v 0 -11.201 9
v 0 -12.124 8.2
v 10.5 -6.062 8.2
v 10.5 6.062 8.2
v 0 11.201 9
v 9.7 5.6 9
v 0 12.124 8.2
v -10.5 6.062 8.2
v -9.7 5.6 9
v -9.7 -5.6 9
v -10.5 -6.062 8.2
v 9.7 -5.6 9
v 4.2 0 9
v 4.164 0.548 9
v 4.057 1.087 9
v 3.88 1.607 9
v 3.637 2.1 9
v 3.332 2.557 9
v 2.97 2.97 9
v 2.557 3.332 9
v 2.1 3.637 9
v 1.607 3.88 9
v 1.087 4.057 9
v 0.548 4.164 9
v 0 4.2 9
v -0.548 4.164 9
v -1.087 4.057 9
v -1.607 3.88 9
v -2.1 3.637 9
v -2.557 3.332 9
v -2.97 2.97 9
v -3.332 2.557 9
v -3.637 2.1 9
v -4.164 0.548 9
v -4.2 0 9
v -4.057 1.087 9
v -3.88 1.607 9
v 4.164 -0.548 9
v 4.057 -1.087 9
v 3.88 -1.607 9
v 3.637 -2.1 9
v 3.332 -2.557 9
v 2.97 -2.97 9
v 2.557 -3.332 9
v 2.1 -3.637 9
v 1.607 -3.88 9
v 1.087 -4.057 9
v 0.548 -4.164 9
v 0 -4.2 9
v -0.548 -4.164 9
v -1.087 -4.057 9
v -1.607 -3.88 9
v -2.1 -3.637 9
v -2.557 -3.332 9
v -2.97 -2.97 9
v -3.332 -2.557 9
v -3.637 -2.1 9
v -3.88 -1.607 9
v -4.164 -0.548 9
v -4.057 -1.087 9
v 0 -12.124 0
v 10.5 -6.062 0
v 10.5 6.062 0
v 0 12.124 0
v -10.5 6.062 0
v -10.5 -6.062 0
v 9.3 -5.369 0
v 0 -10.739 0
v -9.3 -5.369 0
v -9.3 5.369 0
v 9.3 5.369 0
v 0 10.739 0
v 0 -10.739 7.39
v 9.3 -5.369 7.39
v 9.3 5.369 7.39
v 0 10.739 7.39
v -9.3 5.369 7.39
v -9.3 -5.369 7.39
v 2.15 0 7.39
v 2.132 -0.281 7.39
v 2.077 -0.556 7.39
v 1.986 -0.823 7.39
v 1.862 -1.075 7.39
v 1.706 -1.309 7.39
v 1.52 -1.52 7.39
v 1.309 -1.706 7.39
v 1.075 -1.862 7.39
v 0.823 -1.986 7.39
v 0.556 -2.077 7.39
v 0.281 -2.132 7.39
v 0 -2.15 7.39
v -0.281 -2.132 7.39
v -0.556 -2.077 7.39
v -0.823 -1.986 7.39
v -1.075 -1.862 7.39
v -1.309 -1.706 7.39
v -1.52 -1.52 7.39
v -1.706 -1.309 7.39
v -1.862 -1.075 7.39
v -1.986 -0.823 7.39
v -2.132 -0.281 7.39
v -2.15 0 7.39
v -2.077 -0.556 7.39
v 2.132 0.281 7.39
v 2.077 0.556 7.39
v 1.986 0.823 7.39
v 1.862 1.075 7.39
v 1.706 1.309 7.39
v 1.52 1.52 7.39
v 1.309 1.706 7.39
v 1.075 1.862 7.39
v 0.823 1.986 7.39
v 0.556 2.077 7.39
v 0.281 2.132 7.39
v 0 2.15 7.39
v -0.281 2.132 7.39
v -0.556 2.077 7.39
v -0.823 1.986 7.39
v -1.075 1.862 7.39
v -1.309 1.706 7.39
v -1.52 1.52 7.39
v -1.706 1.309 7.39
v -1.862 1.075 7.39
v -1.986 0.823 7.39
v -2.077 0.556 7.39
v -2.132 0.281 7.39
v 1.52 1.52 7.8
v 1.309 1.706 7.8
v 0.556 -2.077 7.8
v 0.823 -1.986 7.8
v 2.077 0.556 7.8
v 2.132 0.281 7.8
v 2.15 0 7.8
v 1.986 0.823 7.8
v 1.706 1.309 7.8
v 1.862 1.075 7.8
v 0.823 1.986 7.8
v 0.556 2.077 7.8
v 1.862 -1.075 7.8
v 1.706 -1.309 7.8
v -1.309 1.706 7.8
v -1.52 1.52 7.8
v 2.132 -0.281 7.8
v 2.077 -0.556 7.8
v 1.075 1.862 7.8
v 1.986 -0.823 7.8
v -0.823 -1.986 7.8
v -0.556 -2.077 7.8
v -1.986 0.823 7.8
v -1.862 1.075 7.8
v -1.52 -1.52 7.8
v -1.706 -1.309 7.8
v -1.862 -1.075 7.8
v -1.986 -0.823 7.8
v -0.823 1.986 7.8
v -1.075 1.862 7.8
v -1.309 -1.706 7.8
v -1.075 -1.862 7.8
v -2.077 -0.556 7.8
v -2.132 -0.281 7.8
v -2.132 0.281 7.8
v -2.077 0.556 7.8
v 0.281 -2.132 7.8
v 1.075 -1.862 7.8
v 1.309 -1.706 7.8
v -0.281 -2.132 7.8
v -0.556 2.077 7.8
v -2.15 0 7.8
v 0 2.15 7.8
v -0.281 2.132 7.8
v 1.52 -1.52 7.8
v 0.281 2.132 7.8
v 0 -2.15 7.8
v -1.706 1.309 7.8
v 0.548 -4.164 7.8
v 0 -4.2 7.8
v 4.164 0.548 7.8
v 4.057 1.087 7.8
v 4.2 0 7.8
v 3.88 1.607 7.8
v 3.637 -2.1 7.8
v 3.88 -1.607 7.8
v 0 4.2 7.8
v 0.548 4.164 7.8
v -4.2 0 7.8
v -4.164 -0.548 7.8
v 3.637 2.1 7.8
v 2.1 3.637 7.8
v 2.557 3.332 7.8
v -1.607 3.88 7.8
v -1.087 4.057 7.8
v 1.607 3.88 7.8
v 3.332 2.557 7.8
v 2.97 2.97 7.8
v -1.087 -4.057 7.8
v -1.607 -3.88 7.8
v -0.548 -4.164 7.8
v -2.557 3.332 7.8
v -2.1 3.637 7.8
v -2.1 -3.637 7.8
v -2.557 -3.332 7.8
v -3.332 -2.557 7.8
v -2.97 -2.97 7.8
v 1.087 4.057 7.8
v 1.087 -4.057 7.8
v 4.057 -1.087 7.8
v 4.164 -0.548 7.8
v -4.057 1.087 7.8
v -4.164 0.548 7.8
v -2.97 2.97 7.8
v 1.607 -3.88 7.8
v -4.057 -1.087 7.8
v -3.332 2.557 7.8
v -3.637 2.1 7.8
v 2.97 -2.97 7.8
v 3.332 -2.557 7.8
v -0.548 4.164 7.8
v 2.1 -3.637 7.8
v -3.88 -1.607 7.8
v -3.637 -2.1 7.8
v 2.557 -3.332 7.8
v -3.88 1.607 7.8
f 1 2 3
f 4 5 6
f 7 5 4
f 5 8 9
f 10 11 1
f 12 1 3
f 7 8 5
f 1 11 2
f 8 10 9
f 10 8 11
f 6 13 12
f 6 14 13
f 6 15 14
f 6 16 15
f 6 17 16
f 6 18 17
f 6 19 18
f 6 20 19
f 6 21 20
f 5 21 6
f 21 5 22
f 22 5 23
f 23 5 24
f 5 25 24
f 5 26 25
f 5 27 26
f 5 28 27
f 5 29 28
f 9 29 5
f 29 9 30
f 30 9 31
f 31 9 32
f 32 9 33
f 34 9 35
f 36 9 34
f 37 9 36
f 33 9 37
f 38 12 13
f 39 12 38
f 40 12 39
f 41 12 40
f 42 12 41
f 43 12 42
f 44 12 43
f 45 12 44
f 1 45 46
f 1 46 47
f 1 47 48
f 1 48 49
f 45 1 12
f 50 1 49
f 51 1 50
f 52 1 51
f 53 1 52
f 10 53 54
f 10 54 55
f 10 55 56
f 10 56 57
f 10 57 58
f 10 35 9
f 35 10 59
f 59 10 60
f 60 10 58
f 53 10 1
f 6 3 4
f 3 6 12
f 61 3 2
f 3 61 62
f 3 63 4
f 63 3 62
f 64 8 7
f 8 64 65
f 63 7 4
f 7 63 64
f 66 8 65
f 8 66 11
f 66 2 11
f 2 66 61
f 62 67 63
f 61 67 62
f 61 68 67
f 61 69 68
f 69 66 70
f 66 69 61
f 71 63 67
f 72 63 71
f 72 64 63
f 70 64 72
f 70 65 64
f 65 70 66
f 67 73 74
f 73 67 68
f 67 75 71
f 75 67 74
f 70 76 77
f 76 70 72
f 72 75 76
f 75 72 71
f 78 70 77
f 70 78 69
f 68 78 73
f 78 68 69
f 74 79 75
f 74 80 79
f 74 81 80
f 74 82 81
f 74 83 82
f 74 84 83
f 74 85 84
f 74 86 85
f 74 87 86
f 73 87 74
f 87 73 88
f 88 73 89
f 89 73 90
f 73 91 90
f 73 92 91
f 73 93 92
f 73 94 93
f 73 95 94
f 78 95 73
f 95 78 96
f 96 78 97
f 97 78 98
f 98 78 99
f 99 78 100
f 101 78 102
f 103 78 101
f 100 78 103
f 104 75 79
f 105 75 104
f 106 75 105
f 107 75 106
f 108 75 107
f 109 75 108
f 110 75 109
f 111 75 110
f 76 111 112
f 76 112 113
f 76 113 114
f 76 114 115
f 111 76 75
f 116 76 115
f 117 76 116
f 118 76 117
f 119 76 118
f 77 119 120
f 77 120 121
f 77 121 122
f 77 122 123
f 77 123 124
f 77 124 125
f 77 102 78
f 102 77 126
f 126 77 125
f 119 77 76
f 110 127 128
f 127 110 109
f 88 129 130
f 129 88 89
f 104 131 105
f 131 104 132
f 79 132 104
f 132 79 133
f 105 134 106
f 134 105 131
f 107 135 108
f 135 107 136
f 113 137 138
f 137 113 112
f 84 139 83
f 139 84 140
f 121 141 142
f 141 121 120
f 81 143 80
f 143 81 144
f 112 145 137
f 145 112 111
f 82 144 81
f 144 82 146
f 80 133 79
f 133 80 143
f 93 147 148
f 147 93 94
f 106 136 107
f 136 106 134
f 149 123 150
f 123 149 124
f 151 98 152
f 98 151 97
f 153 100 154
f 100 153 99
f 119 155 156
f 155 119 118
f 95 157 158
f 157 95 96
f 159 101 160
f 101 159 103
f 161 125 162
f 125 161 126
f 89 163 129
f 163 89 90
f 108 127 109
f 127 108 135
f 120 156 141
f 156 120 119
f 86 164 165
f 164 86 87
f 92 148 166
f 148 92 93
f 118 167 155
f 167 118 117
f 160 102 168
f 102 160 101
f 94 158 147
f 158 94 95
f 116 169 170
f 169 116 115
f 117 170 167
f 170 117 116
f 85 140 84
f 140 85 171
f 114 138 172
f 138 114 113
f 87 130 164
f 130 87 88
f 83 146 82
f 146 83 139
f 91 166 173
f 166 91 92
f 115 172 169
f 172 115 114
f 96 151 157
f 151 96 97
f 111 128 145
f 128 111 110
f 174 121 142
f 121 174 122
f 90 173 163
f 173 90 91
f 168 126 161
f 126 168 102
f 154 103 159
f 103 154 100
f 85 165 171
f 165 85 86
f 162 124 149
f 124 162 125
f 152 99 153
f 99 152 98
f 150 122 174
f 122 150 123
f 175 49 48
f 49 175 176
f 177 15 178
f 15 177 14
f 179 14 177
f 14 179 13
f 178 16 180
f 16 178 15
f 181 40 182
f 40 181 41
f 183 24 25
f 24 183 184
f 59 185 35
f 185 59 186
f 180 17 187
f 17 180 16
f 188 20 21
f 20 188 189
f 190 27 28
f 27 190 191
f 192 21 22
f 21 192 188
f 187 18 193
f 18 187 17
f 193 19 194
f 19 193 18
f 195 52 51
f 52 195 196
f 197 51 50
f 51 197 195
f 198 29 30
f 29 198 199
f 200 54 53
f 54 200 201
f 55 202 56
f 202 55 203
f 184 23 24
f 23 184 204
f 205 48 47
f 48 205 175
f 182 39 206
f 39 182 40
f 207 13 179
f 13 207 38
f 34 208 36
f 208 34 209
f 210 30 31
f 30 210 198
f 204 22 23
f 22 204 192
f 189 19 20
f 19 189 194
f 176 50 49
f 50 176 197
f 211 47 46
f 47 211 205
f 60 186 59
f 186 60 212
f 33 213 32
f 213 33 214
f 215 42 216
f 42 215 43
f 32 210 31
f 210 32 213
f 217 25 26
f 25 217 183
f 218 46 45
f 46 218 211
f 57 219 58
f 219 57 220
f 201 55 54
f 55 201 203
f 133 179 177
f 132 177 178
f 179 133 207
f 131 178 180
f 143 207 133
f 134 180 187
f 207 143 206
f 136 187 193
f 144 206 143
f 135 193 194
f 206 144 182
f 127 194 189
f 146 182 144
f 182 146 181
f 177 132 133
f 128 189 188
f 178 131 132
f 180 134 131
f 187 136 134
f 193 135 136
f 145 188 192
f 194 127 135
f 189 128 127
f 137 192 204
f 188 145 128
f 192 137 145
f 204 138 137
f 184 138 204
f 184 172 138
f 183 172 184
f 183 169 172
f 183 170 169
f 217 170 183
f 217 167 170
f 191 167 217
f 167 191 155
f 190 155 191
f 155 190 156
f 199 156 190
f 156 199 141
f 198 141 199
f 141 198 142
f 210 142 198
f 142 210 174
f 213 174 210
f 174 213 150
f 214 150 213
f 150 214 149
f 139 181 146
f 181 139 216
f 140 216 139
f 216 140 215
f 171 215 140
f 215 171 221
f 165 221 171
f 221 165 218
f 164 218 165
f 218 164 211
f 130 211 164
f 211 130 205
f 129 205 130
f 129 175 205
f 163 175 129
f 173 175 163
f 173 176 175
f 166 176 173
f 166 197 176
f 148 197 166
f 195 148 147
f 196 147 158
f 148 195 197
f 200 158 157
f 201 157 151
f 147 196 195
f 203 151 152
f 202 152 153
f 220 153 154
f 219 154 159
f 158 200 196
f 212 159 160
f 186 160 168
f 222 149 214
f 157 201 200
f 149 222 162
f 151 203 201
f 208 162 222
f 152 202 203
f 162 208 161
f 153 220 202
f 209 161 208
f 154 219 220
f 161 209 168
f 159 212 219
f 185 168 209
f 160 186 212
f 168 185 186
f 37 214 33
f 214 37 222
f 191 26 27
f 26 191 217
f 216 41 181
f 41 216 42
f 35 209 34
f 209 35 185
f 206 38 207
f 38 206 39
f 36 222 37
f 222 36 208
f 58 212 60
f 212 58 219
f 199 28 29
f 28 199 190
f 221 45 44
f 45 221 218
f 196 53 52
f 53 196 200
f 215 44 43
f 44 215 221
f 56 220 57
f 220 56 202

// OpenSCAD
// file: common.scad
// Hexboard overlay — shared dimensions and part modules.
// All values hardcoded in mm. z = 0 is the iPad glass. Hexes are pointy-top (a vertex points along +Y),
// matching the app's key grid (app/js/geometry.js).

$fn = 48;

// ---------- grid ----------
PITCH   = 24.15;                 // key centre-to-centre
ROW     = PITCH * sqrt(3) / 2;   // 20.914 between rows

// ---------- cap (translucent PETG) ----------
CAP_FLAT   = 21.0;   // outer flat-to-flat
CAP_H      = 9.0;
CAP_WALL   = 1.2;
CAP_TOP    = 1.6;    // top thickness
CAP_HOLE   = 4.3;    // stem through-hole
CB_D       = 8.4;    // counterbore for plunger head
CB_DEPTH   = 1.2;

// ---------- plunger (conductive PLA) ----------
HEAD_D     = 8.0;
HEAD_H     = 1.2;
STEM_D     = 4.0;
STEM_L     = 14.3;   // below the head

// ---------- tip cup (conductive PLA) + conductive foam ----------
CUP_D      = 7.5;
CUP_H      = 4.5;
SOCKET_D   = 4.05;   // press fit on the stem
SOCKET_DEPTH = 2.0;
POCKET_D   = 6.2;    // holds a 6 mm conductive foam disc
POCKET_DEPTH = 2.0;
FOAM_PROTRUDE = 1.5; // foam below the cup (foam disc 6 x 3.5 mm)

// ---------- vertical stack (rest position) ----------
REST_GAP     = 2.0;                                  // foam to glass at rest
CUP_TOP_Z    = REST_GAP + FOAM_PROTRUDE + CUP_H;     // 8.0: cup stops under the spider
SPIDER_Z     = CUP_TOP_Z;                            // spider bottom = plate bottom
SPIDER_T     = 1.5;
TRAVEL_STOP  = 3.0;                                  // cap bottom to spider at rest
CAP_BOTTOM_Z = SPIDER_Z + SPIDER_T + TRAVEL_STOP;    // 12.5
CAP_TOP_Z    = CAP_BOTTOM_Z + CAP_H;                 // 21.5
PLATE_TOP_Z  = CAP_TOP_Z - 2.0;                      // 19.5: caps stand 2 mm proud
// Pressed to the stop: foam is 1 mm into the glass (compressed), which is the pressure range.

// ---------- bore + spider (part of each housing) ----------
BORE_FLAT    = 21.4;  // 0.2 mm clearance per side
SPIDER_RING_ID = 4.6; // stem slides through
SPIDER_RING_OD = 9.0; // spring seat (spring: 0.5 mm wire, 7 mm OD, ~15 mm free length)
SPOKE_W      = 1.2;

// ---------- iPad Air 4 (A2316) ----------
IPAD_W   = 247.6;
IPAD_H   = 178.5;
IPAD_T   = 6.1;
IPAD_R   = 18.0;     // corner radius (approximate: measure yours)
SCREEN_W = 227.06;   // 2360 px / 264 ppi
SCREEN_H = 157.79;   // 1640 px / 264 ppi
STRIP    = 18.0;     // uncovered control strip along the top edge of the screen
// Key grid centre relative to screen centre (y up): matches app geometry.
GRID_Y   = -(SCREEN_H + STRIP) / 2 + SCREEN_H / 2;   // -9.0

// ---------- helpers ----------
module hex(flat, h) { rotate([0, 0, 30]) cylinder(r = flat / sqrt(3), h = h, $fn = 6); }

// Key centres for the 51-key grid: 6 rows of 9 / 8 keys, row 0 nearest the player.
function key_q(r, j) = (r % 2 == 1) ? j - 3.5 : j - 4;
function key_pos(r, j) = [key_q(r, j) * PITCH, GRID_Y + (r - 2.5) * ROW];

// ---------- parts ----------
// Cap: hollow hex, open at the bottom. Print top-down (top face on the bed).
module cap() {
  difference() {
    hex(CAP_FLAT, CAP_H);
    translate([0, 0, -0.01]) hex(CAP_FLAT - 2 * CAP_WALL, CAP_H - CAP_TOP);
    translate([0, 0, -1]) cylinder(d = CAP_HOLE, h = CAP_H + 2);
    translate([0, 0, CAP_H - CB_DEPTH]) cylinder(d = CB_D, h = CB_DEPTH + 1);
    // soft top edge
    translate([0, 0, CAP_H - 0.8])
      difference() { hex(CAP_FLAT + 2, 2); hex_chamfer(); }
  }
}
module hex_chamfer() {
  rotate([0, 0, 30]) cylinder(r1 = CAP_FLAT / sqrt(3), r2 = (CAP_FLAT - 1.6) / sqrt(3), h = 0.8, $fn = 6);
}

// Plunger: head sits flush in the cap's counterbore; stem runs down through the spider.
// Print head-down.
module plunger() {
  cylinder(d = HEAD_D, h = HEAD_H);
  cylinder(d = STEM_D, h = HEAD_H + STEM_L);
}

// Tip cup: socket on top (stem), pocket underneath (foam). Print socket-up.
module tip_cup() {
  difference() {
    cylinder(d = CUP_D, h = CUP_H);
    translate([0, 0, -0.01]) cylinder(d = POCKET_D, h = POCKET_DEPTH);
    translate([0, 0, CUP_H - SOCKET_DEPTH]) cylinder(d = SOCKET_D, h = SOCKET_DEPTH + 1);
  }
}

// Spider: three spokes from the bore wall to the spring-seat ring. Positioned at z = SPIDER_Z.
module spider() {
  translate([0, 0, SPIDER_Z]) {
    difference() {
      cylinder(d = SPIDER_RING_OD, h = SPIDER_T);
      translate([0, 0, -1]) cylinder(d = SPIDER_RING_ID, h = SPIDER_T + 2);
    }
    for (a = [0, 120, 240]) rotate([0, 0, a])   // toward the bore's flat sides
      translate([SPIDER_RING_OD / 2 - 0.5, -SPOKE_W / 2, 0])
        cube([BORE_FLAT / 2 - SPIDER_RING_OD / 2 + 1.5, SPOKE_W, SPIDER_T]);
  }
}

// Bore cut-out (through the plate), used with difference().
module bore() { translate([0, 0, SPIDER_Z - 1]) hex(BORE_FLAT, PLATE_TOP_Z - SPIDER_Z + 2); }

// Whole key assembly at rest, for previews.
module key_assembly() {
  color([0.6, 0.9, 0.8, 0.6]) translate([0, 0, CAP_BOTTOM_Z]) cap();
  color("dimgray") translate([0, 0, CAP_TOP_Z]) mirror([0, 0, 1]) plunger();
  color("dimgray") translate([0, 0, CUP_TOP_Z - CUP_H]) tip_cup();
  color("black") translate([0, 0, REST_GAP]) cylinder(d = 6, h = FOAM_PROTRUDE + POCKET_DEPTH);
}
// main file
// Key cap — translucent PETG. Print top-down (flip in the slicer so the top face is on the bed),
// no supports, 0.2 mm layers. 51 needed for the full overlay (+1 for the test key).
include <common.scad>
cap();
